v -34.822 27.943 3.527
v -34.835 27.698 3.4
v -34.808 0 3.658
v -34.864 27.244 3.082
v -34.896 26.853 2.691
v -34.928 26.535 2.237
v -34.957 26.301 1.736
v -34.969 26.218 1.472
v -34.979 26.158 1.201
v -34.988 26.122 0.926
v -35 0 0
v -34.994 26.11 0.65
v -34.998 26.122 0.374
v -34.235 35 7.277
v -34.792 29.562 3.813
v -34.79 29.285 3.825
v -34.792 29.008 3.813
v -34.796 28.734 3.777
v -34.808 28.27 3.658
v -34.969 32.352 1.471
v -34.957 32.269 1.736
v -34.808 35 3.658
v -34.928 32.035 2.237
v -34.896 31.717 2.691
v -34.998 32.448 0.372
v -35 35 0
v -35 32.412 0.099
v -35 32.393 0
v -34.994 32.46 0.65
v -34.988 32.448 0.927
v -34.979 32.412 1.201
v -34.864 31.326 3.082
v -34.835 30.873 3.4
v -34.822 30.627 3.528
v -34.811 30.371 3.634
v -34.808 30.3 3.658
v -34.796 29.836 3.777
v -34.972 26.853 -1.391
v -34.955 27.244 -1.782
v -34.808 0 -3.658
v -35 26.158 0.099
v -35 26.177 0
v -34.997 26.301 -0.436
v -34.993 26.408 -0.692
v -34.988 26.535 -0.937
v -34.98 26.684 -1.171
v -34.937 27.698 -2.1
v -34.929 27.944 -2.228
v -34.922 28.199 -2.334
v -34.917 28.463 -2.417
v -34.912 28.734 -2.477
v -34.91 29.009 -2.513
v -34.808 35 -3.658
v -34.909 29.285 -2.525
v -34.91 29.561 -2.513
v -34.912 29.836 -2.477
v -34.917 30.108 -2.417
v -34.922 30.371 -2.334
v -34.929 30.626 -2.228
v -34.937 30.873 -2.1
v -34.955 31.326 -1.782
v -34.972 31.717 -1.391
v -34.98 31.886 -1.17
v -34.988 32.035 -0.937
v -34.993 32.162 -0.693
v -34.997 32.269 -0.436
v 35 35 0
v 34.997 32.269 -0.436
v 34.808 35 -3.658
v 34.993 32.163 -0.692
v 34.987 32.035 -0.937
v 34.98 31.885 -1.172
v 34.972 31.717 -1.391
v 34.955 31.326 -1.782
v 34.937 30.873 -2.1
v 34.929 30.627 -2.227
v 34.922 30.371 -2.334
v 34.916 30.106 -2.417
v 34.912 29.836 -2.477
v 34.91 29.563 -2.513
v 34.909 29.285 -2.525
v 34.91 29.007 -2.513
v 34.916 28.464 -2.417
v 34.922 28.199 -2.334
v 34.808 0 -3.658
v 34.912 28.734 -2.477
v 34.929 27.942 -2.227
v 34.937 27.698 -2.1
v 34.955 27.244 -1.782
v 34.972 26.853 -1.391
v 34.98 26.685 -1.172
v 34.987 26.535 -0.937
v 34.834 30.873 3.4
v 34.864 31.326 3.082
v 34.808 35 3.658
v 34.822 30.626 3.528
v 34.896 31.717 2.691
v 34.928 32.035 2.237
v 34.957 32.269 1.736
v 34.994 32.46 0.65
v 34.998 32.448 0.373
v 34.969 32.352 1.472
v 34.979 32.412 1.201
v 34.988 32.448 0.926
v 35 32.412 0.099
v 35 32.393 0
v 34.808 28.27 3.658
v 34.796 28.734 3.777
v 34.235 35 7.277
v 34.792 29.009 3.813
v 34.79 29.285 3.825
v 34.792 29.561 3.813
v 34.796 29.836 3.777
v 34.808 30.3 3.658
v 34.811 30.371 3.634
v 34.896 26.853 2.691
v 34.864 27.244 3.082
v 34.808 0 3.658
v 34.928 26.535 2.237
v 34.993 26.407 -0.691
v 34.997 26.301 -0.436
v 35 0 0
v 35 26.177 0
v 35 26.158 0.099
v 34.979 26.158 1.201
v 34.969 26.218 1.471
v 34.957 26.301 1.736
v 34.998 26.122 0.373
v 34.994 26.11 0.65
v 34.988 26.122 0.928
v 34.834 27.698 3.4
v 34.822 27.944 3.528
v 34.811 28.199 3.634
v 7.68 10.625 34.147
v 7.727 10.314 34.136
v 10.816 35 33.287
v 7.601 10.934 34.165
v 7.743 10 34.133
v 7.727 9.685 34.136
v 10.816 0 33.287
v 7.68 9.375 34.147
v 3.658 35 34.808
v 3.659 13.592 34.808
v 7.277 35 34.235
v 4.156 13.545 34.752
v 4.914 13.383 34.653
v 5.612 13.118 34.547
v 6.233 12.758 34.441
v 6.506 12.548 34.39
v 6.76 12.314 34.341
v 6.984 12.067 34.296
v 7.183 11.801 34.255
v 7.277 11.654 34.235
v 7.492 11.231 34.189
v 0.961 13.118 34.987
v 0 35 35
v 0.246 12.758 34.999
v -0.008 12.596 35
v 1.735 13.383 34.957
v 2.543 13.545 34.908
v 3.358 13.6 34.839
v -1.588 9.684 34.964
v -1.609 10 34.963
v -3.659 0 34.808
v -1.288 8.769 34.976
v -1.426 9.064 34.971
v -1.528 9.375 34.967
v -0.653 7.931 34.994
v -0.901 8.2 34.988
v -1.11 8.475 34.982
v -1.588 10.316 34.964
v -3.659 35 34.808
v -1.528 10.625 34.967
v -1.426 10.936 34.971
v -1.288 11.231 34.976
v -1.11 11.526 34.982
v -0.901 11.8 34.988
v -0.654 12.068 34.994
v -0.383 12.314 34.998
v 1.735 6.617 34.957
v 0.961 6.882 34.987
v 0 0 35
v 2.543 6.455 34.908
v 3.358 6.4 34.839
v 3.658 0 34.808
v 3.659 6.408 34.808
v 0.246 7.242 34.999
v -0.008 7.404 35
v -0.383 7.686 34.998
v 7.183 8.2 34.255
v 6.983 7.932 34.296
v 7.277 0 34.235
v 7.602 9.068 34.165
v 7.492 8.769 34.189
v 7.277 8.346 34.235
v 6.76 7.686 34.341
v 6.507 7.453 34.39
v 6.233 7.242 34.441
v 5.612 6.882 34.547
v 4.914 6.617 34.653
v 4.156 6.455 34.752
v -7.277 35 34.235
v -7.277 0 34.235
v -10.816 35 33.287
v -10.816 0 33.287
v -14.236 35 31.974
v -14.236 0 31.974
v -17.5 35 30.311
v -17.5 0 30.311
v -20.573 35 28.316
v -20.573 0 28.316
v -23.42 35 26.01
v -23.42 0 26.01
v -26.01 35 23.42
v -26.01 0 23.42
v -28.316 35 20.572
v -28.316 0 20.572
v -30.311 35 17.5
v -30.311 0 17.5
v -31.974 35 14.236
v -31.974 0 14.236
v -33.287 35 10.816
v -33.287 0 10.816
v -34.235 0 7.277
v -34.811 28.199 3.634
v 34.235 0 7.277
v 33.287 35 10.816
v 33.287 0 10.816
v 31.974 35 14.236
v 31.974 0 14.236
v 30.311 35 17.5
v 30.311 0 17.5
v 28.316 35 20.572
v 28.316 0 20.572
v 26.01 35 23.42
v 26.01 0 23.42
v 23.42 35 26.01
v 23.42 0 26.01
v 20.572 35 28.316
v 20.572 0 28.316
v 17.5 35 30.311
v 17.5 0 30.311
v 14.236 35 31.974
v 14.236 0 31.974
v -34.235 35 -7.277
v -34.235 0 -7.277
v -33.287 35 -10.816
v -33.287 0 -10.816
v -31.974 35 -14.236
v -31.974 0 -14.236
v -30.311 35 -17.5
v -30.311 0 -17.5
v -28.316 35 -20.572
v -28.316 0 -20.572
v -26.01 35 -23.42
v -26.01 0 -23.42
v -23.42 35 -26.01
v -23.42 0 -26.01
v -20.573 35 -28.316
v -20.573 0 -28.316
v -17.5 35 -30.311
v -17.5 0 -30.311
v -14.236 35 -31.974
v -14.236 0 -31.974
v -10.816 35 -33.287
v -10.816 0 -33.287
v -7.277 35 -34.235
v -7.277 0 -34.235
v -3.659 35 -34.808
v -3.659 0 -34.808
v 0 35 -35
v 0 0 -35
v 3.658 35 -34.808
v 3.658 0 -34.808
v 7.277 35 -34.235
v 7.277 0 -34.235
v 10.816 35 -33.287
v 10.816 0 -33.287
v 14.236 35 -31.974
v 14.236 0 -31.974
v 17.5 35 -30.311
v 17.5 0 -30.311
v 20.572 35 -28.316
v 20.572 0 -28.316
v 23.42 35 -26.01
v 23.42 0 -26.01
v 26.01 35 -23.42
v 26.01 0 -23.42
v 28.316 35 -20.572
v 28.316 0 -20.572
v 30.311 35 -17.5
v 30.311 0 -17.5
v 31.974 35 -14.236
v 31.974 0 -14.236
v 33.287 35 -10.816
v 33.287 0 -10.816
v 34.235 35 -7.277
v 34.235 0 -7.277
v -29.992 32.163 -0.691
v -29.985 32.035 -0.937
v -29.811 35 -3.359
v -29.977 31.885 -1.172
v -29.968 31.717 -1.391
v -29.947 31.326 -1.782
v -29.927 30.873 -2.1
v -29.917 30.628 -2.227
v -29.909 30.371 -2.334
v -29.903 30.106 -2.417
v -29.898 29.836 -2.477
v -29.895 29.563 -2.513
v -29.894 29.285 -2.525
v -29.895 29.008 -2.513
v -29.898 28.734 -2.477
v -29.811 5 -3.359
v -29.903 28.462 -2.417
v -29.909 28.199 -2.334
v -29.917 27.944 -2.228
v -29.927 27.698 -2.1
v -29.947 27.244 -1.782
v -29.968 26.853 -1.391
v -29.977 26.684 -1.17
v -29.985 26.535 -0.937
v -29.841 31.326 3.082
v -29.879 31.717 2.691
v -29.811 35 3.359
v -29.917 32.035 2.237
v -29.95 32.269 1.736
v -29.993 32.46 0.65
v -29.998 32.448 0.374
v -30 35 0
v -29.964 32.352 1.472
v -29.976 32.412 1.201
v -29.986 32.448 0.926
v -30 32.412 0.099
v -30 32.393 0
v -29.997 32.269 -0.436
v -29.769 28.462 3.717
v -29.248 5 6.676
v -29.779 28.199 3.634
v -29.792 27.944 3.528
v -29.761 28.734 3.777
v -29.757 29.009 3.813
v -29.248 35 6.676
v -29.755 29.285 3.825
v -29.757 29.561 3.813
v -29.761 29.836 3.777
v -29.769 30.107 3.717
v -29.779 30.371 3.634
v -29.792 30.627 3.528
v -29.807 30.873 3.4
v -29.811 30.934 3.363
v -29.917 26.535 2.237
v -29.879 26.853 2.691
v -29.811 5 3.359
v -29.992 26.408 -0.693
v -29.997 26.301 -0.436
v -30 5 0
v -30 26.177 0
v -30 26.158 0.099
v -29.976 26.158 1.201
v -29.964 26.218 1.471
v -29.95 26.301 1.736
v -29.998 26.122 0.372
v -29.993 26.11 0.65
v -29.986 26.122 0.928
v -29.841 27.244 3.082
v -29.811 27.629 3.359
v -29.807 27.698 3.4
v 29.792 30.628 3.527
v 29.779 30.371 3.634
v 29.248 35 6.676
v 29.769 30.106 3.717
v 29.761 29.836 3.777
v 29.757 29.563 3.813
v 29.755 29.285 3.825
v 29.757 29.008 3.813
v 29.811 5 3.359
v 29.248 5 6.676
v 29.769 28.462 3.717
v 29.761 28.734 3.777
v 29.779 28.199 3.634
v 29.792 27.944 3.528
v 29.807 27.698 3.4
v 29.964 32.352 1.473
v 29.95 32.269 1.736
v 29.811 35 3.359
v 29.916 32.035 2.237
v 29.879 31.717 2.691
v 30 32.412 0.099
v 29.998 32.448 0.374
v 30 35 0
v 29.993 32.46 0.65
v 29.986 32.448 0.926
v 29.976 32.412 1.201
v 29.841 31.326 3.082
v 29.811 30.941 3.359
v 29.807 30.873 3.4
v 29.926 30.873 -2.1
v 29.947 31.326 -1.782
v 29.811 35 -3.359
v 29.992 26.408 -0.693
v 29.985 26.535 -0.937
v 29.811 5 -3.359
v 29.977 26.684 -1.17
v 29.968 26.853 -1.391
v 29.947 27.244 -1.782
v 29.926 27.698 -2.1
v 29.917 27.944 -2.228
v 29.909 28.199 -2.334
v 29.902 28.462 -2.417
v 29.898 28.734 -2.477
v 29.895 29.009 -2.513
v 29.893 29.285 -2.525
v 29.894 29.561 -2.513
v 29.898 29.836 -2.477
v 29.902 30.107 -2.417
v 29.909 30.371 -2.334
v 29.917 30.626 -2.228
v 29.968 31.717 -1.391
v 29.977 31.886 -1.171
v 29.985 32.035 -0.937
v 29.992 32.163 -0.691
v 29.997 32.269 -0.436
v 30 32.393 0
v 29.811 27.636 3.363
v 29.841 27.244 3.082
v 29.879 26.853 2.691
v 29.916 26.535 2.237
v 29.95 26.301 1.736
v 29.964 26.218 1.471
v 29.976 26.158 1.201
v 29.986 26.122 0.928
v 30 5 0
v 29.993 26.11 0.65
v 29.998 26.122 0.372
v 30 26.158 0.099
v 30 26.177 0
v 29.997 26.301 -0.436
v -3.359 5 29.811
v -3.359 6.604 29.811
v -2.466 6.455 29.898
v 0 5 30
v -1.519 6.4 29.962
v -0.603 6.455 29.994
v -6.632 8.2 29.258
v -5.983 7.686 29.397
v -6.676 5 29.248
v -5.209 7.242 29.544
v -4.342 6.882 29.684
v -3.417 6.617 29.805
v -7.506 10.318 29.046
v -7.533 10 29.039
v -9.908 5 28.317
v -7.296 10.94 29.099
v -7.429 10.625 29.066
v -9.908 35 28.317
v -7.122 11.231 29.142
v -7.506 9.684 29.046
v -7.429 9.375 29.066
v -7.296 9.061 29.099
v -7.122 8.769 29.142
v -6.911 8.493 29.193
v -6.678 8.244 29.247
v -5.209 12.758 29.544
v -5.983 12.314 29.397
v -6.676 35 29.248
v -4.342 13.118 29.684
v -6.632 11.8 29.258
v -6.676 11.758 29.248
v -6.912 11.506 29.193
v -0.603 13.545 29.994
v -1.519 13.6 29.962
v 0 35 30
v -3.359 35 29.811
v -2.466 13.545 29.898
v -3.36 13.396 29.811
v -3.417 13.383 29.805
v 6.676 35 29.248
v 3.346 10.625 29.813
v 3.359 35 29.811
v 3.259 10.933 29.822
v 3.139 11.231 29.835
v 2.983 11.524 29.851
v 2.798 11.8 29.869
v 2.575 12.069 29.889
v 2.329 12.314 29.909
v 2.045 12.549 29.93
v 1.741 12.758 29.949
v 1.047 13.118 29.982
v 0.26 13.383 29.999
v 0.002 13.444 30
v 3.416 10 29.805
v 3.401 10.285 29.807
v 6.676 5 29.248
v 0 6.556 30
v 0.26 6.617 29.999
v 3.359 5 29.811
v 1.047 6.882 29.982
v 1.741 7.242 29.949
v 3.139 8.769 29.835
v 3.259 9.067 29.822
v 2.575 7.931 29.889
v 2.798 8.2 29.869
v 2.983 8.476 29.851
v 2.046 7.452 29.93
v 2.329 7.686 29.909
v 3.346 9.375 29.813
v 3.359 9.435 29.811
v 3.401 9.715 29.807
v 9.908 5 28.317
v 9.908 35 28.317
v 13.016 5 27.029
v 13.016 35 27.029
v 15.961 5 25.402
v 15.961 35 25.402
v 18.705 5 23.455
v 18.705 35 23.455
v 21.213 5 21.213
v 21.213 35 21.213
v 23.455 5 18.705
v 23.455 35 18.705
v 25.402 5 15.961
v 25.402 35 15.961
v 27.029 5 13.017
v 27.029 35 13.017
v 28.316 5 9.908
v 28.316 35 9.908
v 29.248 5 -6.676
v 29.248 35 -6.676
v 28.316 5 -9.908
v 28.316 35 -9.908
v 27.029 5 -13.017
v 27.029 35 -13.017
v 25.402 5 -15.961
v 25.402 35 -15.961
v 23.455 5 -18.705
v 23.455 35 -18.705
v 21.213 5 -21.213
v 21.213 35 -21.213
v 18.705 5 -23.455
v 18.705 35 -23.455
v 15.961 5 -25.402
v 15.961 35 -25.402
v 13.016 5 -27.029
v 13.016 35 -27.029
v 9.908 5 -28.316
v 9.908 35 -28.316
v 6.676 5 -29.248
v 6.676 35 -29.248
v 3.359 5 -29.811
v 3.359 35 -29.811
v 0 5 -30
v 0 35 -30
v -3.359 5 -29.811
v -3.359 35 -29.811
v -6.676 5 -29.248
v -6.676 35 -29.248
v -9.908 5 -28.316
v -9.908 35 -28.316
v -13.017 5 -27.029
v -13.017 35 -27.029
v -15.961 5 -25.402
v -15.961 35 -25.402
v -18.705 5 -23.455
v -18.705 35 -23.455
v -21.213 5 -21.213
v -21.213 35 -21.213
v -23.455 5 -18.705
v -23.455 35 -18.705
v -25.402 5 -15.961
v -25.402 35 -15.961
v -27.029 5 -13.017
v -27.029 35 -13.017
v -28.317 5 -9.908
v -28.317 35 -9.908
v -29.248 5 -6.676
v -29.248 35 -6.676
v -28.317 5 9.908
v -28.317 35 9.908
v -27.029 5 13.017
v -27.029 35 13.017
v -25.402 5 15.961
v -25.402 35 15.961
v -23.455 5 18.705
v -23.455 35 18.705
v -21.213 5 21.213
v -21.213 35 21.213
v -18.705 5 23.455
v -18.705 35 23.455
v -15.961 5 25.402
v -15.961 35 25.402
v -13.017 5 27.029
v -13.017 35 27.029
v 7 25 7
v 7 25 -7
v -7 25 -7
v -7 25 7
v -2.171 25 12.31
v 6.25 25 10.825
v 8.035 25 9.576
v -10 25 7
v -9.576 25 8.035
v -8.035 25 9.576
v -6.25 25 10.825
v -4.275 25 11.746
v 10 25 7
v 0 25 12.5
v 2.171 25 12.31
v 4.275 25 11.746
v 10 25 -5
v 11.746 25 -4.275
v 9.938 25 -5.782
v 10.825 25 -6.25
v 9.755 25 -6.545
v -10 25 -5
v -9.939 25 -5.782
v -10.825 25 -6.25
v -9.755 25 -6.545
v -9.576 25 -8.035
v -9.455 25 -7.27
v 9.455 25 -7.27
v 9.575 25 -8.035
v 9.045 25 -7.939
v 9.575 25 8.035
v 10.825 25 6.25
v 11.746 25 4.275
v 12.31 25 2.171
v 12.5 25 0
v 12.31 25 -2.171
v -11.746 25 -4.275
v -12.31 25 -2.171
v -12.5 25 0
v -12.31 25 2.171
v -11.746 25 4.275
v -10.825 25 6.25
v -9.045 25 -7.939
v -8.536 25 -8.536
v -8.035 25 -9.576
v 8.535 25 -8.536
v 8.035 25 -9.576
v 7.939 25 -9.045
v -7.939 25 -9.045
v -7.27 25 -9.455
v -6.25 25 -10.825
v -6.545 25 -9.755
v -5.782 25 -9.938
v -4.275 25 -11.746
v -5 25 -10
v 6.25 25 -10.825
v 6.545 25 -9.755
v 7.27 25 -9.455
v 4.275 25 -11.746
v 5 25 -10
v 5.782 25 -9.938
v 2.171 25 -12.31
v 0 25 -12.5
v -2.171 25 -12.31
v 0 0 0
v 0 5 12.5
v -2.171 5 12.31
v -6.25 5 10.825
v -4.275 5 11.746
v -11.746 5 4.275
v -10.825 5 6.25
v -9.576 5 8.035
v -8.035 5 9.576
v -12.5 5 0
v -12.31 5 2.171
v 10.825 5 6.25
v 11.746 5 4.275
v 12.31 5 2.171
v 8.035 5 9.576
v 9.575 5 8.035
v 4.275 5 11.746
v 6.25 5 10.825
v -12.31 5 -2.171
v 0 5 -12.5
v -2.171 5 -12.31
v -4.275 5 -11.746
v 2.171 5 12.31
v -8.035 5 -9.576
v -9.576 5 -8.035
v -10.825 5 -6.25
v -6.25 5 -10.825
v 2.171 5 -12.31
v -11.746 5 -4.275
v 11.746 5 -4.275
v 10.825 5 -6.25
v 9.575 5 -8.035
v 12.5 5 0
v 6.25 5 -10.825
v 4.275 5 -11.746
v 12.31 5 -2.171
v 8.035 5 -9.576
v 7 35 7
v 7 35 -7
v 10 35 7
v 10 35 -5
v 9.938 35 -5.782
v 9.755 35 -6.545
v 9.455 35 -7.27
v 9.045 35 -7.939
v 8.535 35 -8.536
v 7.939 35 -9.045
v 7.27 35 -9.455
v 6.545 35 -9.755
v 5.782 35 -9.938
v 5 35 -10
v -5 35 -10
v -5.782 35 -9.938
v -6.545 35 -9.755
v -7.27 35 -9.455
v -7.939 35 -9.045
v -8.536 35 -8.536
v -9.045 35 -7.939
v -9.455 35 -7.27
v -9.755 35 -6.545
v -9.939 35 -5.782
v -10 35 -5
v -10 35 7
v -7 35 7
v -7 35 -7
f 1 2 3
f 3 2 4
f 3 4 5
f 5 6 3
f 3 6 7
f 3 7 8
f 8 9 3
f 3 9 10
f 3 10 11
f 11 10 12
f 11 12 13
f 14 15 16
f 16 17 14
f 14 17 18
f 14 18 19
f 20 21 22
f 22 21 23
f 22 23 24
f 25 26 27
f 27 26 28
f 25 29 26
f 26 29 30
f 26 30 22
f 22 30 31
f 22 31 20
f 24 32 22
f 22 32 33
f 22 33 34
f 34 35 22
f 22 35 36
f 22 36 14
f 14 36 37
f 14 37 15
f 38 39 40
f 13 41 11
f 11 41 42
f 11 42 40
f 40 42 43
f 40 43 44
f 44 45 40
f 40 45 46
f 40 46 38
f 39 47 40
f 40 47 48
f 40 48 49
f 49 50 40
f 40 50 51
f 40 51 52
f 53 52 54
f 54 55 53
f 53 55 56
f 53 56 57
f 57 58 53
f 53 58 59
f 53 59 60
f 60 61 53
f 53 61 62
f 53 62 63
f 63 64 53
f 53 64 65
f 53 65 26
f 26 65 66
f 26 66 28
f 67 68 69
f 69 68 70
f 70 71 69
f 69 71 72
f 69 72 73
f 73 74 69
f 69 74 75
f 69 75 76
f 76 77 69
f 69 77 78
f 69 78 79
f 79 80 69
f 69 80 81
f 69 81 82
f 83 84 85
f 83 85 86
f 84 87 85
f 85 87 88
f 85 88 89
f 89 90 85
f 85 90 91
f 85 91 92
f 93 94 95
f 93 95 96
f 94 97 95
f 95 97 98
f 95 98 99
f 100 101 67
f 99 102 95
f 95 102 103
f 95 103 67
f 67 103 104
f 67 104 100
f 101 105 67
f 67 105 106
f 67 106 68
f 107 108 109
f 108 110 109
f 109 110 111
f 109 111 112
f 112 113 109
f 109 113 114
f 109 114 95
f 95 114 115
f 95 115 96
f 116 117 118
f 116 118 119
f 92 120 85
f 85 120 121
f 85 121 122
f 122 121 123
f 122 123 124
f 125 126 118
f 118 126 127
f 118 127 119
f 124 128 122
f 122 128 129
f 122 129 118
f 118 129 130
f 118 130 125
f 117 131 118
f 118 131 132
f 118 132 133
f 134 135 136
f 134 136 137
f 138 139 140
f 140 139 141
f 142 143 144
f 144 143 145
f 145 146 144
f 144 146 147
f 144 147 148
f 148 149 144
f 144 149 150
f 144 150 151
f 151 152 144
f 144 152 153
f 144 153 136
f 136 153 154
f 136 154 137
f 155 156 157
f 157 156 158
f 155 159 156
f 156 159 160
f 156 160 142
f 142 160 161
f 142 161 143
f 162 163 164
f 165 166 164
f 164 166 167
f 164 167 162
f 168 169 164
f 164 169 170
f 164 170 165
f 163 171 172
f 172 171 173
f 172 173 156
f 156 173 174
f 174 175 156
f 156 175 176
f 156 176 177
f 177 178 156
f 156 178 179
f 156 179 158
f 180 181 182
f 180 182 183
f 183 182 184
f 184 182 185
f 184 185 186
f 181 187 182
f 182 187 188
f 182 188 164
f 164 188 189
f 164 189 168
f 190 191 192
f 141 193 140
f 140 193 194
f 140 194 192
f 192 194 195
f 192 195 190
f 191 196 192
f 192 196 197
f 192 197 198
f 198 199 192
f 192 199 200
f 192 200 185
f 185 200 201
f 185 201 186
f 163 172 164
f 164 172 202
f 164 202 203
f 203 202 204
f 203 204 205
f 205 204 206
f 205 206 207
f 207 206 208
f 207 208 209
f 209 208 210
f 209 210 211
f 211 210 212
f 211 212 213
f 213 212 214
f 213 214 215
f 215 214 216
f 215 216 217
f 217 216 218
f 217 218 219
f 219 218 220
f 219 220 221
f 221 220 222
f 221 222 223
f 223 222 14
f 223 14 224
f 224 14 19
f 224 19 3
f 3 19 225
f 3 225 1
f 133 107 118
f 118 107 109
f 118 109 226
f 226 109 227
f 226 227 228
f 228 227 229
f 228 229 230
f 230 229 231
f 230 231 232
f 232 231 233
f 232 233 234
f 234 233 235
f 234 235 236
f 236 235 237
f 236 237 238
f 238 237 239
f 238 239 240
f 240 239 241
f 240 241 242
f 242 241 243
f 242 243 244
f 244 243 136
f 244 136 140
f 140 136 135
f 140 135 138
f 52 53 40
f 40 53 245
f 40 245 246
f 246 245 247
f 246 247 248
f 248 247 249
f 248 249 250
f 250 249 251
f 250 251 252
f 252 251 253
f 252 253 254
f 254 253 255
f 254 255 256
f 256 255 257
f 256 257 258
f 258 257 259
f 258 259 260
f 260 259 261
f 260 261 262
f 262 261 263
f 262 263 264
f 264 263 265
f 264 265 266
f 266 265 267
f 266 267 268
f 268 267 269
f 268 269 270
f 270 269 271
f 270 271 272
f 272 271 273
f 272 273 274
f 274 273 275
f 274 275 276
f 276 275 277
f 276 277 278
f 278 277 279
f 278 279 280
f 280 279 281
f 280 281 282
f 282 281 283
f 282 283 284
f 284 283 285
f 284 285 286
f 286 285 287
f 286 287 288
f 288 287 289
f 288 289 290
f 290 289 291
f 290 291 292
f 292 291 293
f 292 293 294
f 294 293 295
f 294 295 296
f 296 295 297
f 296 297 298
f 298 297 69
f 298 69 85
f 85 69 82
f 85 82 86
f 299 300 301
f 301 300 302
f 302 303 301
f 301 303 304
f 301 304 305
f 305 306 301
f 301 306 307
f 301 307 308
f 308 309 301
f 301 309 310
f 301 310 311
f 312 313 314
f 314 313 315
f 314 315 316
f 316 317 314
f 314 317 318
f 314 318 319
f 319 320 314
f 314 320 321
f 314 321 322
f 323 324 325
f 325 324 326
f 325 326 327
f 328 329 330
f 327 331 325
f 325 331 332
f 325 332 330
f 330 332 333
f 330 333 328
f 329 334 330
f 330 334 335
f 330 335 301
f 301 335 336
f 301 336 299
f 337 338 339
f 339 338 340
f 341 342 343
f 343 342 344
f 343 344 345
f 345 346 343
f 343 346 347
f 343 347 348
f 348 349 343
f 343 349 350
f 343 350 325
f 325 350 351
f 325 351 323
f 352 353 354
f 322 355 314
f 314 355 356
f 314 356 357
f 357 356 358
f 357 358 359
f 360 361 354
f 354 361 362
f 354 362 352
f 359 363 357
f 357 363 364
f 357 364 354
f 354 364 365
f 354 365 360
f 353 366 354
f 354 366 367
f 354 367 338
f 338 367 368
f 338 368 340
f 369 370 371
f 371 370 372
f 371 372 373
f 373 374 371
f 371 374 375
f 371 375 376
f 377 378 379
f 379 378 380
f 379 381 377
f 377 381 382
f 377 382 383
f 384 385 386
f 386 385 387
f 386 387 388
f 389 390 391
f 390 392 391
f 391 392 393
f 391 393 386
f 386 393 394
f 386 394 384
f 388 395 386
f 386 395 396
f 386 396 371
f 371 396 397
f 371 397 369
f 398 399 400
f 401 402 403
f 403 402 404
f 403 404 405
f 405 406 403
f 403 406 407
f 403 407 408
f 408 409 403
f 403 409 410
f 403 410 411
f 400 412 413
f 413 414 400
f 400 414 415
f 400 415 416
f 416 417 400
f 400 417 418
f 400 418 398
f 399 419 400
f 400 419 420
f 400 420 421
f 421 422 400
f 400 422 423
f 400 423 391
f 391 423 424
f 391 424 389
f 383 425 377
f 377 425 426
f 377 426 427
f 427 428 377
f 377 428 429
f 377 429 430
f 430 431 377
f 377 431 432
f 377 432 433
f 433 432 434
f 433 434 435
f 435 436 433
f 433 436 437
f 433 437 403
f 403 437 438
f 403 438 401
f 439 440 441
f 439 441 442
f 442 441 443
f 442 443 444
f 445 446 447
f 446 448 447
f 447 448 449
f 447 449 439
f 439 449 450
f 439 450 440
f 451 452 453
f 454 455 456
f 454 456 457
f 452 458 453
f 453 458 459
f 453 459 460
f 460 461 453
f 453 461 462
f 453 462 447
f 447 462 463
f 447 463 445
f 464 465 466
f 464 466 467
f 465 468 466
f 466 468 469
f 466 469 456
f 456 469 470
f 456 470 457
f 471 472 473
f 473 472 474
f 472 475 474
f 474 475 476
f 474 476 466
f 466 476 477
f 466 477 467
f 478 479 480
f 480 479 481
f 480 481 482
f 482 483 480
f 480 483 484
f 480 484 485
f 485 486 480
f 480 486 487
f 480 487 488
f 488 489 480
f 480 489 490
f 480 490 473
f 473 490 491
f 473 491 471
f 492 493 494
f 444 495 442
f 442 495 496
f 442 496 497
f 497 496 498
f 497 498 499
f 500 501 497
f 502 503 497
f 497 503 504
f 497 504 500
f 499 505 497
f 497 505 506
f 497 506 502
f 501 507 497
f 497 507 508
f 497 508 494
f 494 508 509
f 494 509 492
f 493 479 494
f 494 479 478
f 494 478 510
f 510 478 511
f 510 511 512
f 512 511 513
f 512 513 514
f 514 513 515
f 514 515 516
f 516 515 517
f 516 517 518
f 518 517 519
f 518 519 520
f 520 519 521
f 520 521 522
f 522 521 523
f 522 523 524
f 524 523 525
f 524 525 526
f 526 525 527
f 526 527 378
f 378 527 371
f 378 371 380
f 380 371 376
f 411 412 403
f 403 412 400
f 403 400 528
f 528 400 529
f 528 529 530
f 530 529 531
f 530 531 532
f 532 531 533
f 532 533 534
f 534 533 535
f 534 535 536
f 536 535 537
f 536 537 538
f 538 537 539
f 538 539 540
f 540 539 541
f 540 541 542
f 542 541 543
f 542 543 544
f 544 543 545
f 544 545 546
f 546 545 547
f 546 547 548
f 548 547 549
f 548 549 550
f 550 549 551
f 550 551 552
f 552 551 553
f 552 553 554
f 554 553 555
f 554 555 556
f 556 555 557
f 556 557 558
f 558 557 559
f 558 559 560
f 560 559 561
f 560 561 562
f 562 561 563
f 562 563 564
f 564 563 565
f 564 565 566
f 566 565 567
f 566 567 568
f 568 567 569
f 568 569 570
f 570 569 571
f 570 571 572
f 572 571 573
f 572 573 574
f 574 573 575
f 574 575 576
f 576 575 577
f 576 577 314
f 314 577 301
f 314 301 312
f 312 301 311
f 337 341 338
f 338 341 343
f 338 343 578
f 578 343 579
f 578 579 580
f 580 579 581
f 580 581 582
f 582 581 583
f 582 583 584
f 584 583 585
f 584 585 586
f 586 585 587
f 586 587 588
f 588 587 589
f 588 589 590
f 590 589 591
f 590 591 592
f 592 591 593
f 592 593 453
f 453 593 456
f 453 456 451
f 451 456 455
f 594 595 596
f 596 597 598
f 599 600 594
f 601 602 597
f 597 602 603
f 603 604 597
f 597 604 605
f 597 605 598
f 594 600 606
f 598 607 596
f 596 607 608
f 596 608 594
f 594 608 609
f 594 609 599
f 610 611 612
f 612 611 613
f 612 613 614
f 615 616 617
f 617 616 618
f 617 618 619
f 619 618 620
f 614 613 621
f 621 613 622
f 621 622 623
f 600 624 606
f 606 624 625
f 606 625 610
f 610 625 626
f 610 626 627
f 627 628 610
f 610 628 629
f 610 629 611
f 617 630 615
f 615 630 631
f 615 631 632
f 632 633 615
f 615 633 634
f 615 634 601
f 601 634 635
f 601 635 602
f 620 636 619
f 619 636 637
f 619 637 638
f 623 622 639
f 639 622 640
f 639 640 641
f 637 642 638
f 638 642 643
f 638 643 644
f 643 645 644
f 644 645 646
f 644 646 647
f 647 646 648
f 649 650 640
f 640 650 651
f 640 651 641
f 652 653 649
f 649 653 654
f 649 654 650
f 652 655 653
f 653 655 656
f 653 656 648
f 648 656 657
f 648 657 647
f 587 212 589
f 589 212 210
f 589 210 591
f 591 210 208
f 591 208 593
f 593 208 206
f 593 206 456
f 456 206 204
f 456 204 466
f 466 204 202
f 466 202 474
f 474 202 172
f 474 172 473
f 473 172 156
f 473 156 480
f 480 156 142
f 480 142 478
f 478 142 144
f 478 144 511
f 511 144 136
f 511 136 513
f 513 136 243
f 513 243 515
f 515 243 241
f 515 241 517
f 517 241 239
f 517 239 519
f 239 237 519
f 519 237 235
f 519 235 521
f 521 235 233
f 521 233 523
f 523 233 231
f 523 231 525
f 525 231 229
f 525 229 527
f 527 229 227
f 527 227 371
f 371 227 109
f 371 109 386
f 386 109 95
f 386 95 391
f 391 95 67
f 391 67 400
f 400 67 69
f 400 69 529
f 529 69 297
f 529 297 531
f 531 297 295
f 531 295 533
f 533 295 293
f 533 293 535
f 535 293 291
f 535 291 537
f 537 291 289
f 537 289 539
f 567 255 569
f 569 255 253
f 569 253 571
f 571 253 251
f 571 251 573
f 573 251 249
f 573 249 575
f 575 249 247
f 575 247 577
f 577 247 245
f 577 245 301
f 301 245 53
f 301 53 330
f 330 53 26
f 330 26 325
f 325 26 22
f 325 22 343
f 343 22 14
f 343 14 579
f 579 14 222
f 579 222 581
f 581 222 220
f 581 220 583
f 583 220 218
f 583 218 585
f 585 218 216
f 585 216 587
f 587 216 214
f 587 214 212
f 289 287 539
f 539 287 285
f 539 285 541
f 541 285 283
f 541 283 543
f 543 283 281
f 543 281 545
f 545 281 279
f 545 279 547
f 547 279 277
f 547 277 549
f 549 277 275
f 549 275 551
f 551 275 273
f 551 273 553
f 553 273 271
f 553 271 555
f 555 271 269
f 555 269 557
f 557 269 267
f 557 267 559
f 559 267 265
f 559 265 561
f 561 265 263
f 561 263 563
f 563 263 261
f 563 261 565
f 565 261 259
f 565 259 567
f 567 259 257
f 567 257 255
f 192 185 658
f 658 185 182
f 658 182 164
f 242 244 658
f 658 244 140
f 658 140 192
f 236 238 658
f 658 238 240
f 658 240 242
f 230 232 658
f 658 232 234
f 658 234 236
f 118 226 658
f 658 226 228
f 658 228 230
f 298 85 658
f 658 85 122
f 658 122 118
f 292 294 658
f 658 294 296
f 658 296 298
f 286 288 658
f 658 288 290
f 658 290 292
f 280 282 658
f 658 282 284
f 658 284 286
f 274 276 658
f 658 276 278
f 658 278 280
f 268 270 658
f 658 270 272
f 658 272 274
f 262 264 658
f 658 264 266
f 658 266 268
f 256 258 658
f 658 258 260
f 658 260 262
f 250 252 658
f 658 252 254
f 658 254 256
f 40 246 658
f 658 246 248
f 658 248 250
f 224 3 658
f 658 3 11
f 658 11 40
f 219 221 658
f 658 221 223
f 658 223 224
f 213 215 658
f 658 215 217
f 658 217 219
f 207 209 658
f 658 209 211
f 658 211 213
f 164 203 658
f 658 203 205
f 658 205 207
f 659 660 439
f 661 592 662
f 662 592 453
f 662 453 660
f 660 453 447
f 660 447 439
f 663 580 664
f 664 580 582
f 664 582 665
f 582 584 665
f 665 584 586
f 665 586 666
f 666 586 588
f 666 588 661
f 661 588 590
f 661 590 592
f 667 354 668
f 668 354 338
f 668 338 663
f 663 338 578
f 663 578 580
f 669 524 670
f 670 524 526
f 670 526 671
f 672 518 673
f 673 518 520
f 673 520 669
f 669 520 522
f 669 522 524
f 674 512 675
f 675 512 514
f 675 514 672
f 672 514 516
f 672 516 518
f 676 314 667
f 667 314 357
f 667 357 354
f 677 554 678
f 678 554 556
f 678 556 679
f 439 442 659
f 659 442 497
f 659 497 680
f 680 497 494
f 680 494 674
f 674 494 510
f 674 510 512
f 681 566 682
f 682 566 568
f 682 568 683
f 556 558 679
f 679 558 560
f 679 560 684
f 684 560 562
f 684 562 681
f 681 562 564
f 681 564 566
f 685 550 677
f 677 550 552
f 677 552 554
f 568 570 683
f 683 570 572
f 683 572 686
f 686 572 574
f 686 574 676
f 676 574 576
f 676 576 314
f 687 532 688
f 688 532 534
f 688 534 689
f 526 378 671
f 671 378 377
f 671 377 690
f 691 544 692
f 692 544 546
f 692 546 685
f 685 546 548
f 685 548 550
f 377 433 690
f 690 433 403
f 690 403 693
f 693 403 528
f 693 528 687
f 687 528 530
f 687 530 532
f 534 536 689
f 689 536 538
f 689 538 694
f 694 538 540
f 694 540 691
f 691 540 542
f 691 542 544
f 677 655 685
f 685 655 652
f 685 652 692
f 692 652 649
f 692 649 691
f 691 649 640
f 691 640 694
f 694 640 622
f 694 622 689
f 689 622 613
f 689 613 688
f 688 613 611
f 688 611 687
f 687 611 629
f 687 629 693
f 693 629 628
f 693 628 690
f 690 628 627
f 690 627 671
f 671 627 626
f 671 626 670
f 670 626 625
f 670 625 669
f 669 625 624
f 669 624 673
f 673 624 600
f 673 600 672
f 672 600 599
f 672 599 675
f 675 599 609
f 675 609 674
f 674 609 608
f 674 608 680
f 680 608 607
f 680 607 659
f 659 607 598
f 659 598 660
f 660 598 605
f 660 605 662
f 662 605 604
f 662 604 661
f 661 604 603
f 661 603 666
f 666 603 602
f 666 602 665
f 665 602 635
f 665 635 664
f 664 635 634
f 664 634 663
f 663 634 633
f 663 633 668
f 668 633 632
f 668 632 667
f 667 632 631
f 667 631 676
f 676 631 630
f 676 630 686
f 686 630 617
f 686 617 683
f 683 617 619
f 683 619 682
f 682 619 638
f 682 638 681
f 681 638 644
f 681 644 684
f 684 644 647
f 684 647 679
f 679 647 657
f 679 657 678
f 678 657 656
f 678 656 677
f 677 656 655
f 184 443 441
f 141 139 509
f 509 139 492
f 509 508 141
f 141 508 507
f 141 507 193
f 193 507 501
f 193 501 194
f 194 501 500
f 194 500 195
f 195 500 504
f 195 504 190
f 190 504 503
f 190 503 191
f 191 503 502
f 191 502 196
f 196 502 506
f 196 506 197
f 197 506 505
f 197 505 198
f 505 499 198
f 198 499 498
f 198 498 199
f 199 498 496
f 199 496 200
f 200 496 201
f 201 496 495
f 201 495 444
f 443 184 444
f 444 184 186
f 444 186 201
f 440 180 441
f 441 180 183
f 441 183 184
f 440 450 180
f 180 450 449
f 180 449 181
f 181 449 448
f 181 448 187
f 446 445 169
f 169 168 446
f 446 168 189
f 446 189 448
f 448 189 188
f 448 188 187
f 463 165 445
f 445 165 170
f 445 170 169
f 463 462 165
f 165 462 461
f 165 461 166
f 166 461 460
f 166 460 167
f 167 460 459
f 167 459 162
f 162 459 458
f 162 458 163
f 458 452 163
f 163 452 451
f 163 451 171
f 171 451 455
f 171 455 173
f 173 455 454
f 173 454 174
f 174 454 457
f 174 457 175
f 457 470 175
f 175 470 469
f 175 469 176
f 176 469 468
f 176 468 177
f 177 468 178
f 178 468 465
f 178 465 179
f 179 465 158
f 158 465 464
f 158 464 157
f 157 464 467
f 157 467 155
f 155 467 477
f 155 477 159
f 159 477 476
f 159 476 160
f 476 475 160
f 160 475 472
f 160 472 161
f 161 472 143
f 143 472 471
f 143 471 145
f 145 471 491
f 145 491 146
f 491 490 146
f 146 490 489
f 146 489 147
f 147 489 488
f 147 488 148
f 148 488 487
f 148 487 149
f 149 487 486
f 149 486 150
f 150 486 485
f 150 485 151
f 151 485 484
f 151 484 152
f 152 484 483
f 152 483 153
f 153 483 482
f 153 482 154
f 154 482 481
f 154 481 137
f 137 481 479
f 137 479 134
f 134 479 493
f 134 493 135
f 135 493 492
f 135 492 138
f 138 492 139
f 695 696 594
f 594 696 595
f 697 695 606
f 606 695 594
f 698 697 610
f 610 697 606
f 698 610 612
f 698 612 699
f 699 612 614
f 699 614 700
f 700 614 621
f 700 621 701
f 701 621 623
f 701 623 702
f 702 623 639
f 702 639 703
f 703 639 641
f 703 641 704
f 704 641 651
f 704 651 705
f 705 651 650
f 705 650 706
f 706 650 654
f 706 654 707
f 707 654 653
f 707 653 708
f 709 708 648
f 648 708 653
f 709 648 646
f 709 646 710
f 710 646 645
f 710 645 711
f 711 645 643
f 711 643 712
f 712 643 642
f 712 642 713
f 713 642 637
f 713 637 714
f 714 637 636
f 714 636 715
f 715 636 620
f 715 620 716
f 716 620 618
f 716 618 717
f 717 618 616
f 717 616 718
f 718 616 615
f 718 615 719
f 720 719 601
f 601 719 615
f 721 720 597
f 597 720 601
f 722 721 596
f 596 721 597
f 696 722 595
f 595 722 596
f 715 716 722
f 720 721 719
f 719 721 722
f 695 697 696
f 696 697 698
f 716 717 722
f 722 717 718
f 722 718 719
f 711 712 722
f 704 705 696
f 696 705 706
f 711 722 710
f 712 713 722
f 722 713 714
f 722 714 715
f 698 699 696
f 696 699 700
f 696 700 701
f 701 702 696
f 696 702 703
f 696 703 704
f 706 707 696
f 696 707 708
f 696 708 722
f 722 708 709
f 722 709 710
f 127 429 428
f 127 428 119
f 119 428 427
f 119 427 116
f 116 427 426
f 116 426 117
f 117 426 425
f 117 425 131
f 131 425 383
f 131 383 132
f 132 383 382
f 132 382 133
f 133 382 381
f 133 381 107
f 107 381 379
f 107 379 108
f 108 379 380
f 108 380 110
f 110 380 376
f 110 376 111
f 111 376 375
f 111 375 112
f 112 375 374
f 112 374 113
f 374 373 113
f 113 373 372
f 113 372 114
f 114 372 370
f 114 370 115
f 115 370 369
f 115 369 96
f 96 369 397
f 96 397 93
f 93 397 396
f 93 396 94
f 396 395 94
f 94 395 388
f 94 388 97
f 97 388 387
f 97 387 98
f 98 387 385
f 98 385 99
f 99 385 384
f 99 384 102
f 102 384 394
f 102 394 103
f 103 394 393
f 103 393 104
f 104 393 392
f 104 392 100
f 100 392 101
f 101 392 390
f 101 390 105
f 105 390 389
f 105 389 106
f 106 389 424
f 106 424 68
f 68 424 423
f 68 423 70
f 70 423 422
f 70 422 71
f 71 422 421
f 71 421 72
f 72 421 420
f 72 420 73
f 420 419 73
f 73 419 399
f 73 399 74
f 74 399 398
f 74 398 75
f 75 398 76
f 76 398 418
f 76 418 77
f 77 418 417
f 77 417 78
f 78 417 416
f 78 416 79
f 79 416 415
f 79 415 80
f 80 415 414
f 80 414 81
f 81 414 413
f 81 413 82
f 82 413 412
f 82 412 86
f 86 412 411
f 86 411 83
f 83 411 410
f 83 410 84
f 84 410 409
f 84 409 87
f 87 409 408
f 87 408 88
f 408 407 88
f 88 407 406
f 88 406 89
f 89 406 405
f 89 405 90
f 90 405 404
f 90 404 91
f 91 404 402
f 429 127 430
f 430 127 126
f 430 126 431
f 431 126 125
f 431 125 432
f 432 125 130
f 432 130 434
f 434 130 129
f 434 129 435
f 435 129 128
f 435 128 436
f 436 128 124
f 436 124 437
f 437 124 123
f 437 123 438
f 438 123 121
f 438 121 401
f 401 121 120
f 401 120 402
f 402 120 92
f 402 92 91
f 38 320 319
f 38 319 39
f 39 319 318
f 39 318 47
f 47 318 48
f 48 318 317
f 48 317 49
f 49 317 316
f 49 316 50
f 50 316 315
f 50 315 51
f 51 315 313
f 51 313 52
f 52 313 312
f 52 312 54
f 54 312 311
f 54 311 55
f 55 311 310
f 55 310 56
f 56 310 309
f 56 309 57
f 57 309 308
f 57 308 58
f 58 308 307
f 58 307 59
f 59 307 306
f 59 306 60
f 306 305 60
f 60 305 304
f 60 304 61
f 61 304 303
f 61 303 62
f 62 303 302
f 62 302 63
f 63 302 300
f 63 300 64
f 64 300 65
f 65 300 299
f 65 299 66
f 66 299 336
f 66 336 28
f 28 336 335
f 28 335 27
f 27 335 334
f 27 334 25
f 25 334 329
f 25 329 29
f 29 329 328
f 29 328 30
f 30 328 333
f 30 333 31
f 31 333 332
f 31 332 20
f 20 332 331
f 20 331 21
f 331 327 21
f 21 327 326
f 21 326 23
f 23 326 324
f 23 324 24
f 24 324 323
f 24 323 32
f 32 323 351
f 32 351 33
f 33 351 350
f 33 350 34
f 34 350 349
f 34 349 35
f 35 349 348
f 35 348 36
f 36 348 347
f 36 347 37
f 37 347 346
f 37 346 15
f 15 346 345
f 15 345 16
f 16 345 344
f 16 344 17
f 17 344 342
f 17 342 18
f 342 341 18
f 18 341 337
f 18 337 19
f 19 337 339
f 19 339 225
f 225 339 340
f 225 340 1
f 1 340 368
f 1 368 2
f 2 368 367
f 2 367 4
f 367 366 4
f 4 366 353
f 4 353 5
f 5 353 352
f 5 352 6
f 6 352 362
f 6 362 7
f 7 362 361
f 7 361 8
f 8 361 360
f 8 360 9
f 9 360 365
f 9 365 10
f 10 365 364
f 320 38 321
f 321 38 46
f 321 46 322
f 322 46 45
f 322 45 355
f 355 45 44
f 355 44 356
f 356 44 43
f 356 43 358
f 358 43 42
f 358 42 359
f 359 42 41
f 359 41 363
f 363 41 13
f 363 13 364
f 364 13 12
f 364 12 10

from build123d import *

# Parameters (mm, degrees)
SKETCH1_R           = 35
BOSS_EXTRUDE1_DEPTH = 35
SKETCH3_R           = 30
CUT_EXTRUDE1_DEPTH  = 30
SKETCH4_R           = 12.5
BOSS_EXTRUDE2_DEPTH = 20
SKETCH5_R           = 3.6
CUT_EXTRUDE2_DEPTH  = 20
BOSS_EXTRUDE3_DEPTH = 10
SKETCH8_R           = 3.175
CUT_EXTRUDE4_DEPTH  = 67.895440973
SKETCH10_R          = 3.175
CUT_EXTRUDE5_DEPTH  = 67.895440995


with BuildPart() as part:
    # Sketch1 → Boss-Extrude1 (new body)
    with BuildSketch(Plane(origin=(0, 0, 0), x_dir=(1, 0, 0), z_dir=(0, 1, 0))):
        with Locations(Location((0, 0, 0), (0, 0, 270))):
            Circle(SKETCH1_R)
    extrude(amount=BOSS_EXTRUDE1_DEPTH)

    # Sketch3 → Cut-Extrude1 (cut)
    with BuildSketch(Plane(origin=(0, 35, 0), x_dir=(1, 0, 0), z_dir=(0, 1, 0))):
        with Locations(Location((0, 0, 0), (0, 0, 270))):
            Circle(SKETCH3_R)
    extrude(amount=-CUT_EXTRUDE1_DEPTH, mode=Mode.SUBTRACT)

    # Sketch4 → Boss-Extrude2 (add)
    with BuildSketch(Plane(origin=(0, 5, 0), x_dir=(1, 0, 0), z_dir=(0, 1, 0))):
        with Locations(Location((0, 0, 0), (0, 0, 270))):
            Circle(SKETCH4_R)
    extrude(amount=BOSS_EXTRUDE2_DEPTH)

    # Sketch5 → Cut-Extrude2 (cut)
    with BuildSketch(Plane(origin=(24.748737342, 0, 24.748737342), x_dir=(0, -1, 0), z_dir=(0.7071067811865488, 0, 0.7071067811865464))):
        with Locations(Location((-10, -22.260066462, 0), (0, 0, 90))):
            Circle(SKETCH5_R)
    extrude(amount=-CUT_EXTRUDE2_DEPTH, mode=Mode.SUBTRACT)

    # Sketch6 → Boss-Extrude3 (add)
    with BuildSketch(Plane(origin=(0, 25, 0), x_dir=(1, 0, 0), z_dir=(0, 1, 0))):
        with BuildLine():
            Line((-10, -7), (-10, 5))
            ThreePointArc((-10, 5), (-8.535533906, 8.535533906), (-5, 10))
            Line((-5, 10), (5, 10))
            ThreePointArc((5, 10), (8.535533906, 8.535533906), (10, 5))
            Line((10, 5), (10, -7))
            Line((10, -7), (7, -7))
            Line((7, -7), (7, 7))
            Line((7, 7), (-7, 7))
            Line((-7, 7), (-7, -7))
            Line((-7, -7), (-10, -7))
        make_face()
    extrude(amount=BOSS_EXTRUDE3_DEPTH)

    # Sketch8 → Cut-Extrude4 (cut, through all)
    with BuildSketch(Plane(origin=(10, 0, 0), x_dir=(0, 0, -1), z_dir=(1, 0, 0))):
        with Locations(Location((-0.65, 29.285, 0), (0, 0, 180))):
            Circle(SKETCH8_R)
    extrude(amount=CUT_EXTRUDE4_DEPTH, mode=Mode.SUBTRACT)

    # Sketch10 → Cut-Extrude5 (cut, through all)
    with BuildSketch(Plane.ZY.offset(10)):
        with Locations((0.65, 29.285)):
            Circle(SKETCH10_R)
    extrude(amount=CUT_EXTRUDE5_DEPTH, mode=Mode.SUBTRACT)


solid = part.part
